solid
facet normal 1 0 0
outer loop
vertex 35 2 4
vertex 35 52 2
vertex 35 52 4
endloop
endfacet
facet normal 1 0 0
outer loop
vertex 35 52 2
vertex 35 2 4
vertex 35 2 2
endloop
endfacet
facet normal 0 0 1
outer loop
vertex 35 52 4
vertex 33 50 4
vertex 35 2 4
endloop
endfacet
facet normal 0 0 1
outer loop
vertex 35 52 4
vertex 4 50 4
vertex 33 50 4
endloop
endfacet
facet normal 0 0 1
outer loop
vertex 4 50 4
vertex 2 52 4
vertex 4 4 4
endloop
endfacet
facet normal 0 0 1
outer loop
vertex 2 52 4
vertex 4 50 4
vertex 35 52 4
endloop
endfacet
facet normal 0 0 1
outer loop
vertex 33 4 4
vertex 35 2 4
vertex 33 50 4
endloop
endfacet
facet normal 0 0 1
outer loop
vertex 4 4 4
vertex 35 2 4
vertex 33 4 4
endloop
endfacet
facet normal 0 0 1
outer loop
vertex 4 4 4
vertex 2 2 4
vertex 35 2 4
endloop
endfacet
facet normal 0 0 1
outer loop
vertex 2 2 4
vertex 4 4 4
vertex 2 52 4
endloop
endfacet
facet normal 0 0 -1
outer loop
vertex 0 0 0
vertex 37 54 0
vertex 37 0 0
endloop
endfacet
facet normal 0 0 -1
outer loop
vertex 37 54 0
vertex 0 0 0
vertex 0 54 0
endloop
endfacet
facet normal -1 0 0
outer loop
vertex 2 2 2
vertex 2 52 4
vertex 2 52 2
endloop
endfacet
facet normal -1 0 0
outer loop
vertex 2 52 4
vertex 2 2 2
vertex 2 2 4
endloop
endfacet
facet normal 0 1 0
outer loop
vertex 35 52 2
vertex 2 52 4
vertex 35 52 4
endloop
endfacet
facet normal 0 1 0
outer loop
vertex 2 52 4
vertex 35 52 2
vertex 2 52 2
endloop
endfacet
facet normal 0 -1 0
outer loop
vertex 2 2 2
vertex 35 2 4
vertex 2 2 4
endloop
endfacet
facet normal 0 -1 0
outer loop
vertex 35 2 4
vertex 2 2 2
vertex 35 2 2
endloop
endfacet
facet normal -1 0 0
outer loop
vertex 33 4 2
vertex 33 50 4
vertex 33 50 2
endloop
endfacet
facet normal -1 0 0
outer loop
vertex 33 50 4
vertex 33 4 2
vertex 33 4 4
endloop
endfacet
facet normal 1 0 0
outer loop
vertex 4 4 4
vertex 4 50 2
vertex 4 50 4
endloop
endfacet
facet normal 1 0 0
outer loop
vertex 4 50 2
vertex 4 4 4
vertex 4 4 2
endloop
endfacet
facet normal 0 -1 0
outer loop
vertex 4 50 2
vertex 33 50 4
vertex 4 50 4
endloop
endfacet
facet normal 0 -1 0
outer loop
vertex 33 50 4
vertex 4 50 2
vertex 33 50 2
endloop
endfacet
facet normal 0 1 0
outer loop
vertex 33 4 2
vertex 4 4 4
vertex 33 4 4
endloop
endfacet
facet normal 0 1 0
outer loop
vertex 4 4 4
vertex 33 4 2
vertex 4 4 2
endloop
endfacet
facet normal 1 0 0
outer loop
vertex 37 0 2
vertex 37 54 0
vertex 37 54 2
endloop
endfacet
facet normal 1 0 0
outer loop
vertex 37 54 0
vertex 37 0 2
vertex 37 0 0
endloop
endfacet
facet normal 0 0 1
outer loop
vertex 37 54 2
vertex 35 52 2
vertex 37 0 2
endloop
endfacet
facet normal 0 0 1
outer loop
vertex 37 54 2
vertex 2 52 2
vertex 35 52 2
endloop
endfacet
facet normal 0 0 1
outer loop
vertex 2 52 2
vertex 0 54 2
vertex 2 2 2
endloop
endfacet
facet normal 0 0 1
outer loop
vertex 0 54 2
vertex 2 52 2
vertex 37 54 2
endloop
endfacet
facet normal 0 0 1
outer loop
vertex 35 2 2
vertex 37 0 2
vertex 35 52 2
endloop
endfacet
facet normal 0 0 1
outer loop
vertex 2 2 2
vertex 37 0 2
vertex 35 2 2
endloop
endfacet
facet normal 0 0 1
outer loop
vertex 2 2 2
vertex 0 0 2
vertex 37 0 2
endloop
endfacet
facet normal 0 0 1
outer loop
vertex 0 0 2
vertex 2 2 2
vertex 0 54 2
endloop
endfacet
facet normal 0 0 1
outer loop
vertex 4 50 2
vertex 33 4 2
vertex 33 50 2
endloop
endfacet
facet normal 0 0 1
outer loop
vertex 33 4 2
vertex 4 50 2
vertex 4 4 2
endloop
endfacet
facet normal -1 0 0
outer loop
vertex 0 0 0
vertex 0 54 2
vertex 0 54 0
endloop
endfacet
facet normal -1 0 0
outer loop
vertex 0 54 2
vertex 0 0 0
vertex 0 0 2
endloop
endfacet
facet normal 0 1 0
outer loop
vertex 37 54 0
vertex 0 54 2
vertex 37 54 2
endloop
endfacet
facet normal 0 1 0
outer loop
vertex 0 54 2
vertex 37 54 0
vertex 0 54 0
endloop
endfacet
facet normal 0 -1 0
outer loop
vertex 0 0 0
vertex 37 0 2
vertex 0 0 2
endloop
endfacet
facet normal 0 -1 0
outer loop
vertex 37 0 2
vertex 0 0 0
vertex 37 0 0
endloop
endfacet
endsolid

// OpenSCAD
box_x=37;
box_y=54;
box_z=2;
borders_z=4;
borders_width=2;


module box1() {

cube([box_x,box_y,box_z]);

}


module squareBorders(x_length,y_length,z_length,width){
difference(){
    //outer
cube([x_length,y_length,z_length]);
    //inside cutter
translate([width,width,-1]) cube([x_length-2*width,y_length-2*width,z_length+3]);
}
}

box1();
    
translate([borders_width,borders_width,0]) squareBorders(box_x-2*borders_width,box_y-2*borders_width,borders_z,borders_width);
